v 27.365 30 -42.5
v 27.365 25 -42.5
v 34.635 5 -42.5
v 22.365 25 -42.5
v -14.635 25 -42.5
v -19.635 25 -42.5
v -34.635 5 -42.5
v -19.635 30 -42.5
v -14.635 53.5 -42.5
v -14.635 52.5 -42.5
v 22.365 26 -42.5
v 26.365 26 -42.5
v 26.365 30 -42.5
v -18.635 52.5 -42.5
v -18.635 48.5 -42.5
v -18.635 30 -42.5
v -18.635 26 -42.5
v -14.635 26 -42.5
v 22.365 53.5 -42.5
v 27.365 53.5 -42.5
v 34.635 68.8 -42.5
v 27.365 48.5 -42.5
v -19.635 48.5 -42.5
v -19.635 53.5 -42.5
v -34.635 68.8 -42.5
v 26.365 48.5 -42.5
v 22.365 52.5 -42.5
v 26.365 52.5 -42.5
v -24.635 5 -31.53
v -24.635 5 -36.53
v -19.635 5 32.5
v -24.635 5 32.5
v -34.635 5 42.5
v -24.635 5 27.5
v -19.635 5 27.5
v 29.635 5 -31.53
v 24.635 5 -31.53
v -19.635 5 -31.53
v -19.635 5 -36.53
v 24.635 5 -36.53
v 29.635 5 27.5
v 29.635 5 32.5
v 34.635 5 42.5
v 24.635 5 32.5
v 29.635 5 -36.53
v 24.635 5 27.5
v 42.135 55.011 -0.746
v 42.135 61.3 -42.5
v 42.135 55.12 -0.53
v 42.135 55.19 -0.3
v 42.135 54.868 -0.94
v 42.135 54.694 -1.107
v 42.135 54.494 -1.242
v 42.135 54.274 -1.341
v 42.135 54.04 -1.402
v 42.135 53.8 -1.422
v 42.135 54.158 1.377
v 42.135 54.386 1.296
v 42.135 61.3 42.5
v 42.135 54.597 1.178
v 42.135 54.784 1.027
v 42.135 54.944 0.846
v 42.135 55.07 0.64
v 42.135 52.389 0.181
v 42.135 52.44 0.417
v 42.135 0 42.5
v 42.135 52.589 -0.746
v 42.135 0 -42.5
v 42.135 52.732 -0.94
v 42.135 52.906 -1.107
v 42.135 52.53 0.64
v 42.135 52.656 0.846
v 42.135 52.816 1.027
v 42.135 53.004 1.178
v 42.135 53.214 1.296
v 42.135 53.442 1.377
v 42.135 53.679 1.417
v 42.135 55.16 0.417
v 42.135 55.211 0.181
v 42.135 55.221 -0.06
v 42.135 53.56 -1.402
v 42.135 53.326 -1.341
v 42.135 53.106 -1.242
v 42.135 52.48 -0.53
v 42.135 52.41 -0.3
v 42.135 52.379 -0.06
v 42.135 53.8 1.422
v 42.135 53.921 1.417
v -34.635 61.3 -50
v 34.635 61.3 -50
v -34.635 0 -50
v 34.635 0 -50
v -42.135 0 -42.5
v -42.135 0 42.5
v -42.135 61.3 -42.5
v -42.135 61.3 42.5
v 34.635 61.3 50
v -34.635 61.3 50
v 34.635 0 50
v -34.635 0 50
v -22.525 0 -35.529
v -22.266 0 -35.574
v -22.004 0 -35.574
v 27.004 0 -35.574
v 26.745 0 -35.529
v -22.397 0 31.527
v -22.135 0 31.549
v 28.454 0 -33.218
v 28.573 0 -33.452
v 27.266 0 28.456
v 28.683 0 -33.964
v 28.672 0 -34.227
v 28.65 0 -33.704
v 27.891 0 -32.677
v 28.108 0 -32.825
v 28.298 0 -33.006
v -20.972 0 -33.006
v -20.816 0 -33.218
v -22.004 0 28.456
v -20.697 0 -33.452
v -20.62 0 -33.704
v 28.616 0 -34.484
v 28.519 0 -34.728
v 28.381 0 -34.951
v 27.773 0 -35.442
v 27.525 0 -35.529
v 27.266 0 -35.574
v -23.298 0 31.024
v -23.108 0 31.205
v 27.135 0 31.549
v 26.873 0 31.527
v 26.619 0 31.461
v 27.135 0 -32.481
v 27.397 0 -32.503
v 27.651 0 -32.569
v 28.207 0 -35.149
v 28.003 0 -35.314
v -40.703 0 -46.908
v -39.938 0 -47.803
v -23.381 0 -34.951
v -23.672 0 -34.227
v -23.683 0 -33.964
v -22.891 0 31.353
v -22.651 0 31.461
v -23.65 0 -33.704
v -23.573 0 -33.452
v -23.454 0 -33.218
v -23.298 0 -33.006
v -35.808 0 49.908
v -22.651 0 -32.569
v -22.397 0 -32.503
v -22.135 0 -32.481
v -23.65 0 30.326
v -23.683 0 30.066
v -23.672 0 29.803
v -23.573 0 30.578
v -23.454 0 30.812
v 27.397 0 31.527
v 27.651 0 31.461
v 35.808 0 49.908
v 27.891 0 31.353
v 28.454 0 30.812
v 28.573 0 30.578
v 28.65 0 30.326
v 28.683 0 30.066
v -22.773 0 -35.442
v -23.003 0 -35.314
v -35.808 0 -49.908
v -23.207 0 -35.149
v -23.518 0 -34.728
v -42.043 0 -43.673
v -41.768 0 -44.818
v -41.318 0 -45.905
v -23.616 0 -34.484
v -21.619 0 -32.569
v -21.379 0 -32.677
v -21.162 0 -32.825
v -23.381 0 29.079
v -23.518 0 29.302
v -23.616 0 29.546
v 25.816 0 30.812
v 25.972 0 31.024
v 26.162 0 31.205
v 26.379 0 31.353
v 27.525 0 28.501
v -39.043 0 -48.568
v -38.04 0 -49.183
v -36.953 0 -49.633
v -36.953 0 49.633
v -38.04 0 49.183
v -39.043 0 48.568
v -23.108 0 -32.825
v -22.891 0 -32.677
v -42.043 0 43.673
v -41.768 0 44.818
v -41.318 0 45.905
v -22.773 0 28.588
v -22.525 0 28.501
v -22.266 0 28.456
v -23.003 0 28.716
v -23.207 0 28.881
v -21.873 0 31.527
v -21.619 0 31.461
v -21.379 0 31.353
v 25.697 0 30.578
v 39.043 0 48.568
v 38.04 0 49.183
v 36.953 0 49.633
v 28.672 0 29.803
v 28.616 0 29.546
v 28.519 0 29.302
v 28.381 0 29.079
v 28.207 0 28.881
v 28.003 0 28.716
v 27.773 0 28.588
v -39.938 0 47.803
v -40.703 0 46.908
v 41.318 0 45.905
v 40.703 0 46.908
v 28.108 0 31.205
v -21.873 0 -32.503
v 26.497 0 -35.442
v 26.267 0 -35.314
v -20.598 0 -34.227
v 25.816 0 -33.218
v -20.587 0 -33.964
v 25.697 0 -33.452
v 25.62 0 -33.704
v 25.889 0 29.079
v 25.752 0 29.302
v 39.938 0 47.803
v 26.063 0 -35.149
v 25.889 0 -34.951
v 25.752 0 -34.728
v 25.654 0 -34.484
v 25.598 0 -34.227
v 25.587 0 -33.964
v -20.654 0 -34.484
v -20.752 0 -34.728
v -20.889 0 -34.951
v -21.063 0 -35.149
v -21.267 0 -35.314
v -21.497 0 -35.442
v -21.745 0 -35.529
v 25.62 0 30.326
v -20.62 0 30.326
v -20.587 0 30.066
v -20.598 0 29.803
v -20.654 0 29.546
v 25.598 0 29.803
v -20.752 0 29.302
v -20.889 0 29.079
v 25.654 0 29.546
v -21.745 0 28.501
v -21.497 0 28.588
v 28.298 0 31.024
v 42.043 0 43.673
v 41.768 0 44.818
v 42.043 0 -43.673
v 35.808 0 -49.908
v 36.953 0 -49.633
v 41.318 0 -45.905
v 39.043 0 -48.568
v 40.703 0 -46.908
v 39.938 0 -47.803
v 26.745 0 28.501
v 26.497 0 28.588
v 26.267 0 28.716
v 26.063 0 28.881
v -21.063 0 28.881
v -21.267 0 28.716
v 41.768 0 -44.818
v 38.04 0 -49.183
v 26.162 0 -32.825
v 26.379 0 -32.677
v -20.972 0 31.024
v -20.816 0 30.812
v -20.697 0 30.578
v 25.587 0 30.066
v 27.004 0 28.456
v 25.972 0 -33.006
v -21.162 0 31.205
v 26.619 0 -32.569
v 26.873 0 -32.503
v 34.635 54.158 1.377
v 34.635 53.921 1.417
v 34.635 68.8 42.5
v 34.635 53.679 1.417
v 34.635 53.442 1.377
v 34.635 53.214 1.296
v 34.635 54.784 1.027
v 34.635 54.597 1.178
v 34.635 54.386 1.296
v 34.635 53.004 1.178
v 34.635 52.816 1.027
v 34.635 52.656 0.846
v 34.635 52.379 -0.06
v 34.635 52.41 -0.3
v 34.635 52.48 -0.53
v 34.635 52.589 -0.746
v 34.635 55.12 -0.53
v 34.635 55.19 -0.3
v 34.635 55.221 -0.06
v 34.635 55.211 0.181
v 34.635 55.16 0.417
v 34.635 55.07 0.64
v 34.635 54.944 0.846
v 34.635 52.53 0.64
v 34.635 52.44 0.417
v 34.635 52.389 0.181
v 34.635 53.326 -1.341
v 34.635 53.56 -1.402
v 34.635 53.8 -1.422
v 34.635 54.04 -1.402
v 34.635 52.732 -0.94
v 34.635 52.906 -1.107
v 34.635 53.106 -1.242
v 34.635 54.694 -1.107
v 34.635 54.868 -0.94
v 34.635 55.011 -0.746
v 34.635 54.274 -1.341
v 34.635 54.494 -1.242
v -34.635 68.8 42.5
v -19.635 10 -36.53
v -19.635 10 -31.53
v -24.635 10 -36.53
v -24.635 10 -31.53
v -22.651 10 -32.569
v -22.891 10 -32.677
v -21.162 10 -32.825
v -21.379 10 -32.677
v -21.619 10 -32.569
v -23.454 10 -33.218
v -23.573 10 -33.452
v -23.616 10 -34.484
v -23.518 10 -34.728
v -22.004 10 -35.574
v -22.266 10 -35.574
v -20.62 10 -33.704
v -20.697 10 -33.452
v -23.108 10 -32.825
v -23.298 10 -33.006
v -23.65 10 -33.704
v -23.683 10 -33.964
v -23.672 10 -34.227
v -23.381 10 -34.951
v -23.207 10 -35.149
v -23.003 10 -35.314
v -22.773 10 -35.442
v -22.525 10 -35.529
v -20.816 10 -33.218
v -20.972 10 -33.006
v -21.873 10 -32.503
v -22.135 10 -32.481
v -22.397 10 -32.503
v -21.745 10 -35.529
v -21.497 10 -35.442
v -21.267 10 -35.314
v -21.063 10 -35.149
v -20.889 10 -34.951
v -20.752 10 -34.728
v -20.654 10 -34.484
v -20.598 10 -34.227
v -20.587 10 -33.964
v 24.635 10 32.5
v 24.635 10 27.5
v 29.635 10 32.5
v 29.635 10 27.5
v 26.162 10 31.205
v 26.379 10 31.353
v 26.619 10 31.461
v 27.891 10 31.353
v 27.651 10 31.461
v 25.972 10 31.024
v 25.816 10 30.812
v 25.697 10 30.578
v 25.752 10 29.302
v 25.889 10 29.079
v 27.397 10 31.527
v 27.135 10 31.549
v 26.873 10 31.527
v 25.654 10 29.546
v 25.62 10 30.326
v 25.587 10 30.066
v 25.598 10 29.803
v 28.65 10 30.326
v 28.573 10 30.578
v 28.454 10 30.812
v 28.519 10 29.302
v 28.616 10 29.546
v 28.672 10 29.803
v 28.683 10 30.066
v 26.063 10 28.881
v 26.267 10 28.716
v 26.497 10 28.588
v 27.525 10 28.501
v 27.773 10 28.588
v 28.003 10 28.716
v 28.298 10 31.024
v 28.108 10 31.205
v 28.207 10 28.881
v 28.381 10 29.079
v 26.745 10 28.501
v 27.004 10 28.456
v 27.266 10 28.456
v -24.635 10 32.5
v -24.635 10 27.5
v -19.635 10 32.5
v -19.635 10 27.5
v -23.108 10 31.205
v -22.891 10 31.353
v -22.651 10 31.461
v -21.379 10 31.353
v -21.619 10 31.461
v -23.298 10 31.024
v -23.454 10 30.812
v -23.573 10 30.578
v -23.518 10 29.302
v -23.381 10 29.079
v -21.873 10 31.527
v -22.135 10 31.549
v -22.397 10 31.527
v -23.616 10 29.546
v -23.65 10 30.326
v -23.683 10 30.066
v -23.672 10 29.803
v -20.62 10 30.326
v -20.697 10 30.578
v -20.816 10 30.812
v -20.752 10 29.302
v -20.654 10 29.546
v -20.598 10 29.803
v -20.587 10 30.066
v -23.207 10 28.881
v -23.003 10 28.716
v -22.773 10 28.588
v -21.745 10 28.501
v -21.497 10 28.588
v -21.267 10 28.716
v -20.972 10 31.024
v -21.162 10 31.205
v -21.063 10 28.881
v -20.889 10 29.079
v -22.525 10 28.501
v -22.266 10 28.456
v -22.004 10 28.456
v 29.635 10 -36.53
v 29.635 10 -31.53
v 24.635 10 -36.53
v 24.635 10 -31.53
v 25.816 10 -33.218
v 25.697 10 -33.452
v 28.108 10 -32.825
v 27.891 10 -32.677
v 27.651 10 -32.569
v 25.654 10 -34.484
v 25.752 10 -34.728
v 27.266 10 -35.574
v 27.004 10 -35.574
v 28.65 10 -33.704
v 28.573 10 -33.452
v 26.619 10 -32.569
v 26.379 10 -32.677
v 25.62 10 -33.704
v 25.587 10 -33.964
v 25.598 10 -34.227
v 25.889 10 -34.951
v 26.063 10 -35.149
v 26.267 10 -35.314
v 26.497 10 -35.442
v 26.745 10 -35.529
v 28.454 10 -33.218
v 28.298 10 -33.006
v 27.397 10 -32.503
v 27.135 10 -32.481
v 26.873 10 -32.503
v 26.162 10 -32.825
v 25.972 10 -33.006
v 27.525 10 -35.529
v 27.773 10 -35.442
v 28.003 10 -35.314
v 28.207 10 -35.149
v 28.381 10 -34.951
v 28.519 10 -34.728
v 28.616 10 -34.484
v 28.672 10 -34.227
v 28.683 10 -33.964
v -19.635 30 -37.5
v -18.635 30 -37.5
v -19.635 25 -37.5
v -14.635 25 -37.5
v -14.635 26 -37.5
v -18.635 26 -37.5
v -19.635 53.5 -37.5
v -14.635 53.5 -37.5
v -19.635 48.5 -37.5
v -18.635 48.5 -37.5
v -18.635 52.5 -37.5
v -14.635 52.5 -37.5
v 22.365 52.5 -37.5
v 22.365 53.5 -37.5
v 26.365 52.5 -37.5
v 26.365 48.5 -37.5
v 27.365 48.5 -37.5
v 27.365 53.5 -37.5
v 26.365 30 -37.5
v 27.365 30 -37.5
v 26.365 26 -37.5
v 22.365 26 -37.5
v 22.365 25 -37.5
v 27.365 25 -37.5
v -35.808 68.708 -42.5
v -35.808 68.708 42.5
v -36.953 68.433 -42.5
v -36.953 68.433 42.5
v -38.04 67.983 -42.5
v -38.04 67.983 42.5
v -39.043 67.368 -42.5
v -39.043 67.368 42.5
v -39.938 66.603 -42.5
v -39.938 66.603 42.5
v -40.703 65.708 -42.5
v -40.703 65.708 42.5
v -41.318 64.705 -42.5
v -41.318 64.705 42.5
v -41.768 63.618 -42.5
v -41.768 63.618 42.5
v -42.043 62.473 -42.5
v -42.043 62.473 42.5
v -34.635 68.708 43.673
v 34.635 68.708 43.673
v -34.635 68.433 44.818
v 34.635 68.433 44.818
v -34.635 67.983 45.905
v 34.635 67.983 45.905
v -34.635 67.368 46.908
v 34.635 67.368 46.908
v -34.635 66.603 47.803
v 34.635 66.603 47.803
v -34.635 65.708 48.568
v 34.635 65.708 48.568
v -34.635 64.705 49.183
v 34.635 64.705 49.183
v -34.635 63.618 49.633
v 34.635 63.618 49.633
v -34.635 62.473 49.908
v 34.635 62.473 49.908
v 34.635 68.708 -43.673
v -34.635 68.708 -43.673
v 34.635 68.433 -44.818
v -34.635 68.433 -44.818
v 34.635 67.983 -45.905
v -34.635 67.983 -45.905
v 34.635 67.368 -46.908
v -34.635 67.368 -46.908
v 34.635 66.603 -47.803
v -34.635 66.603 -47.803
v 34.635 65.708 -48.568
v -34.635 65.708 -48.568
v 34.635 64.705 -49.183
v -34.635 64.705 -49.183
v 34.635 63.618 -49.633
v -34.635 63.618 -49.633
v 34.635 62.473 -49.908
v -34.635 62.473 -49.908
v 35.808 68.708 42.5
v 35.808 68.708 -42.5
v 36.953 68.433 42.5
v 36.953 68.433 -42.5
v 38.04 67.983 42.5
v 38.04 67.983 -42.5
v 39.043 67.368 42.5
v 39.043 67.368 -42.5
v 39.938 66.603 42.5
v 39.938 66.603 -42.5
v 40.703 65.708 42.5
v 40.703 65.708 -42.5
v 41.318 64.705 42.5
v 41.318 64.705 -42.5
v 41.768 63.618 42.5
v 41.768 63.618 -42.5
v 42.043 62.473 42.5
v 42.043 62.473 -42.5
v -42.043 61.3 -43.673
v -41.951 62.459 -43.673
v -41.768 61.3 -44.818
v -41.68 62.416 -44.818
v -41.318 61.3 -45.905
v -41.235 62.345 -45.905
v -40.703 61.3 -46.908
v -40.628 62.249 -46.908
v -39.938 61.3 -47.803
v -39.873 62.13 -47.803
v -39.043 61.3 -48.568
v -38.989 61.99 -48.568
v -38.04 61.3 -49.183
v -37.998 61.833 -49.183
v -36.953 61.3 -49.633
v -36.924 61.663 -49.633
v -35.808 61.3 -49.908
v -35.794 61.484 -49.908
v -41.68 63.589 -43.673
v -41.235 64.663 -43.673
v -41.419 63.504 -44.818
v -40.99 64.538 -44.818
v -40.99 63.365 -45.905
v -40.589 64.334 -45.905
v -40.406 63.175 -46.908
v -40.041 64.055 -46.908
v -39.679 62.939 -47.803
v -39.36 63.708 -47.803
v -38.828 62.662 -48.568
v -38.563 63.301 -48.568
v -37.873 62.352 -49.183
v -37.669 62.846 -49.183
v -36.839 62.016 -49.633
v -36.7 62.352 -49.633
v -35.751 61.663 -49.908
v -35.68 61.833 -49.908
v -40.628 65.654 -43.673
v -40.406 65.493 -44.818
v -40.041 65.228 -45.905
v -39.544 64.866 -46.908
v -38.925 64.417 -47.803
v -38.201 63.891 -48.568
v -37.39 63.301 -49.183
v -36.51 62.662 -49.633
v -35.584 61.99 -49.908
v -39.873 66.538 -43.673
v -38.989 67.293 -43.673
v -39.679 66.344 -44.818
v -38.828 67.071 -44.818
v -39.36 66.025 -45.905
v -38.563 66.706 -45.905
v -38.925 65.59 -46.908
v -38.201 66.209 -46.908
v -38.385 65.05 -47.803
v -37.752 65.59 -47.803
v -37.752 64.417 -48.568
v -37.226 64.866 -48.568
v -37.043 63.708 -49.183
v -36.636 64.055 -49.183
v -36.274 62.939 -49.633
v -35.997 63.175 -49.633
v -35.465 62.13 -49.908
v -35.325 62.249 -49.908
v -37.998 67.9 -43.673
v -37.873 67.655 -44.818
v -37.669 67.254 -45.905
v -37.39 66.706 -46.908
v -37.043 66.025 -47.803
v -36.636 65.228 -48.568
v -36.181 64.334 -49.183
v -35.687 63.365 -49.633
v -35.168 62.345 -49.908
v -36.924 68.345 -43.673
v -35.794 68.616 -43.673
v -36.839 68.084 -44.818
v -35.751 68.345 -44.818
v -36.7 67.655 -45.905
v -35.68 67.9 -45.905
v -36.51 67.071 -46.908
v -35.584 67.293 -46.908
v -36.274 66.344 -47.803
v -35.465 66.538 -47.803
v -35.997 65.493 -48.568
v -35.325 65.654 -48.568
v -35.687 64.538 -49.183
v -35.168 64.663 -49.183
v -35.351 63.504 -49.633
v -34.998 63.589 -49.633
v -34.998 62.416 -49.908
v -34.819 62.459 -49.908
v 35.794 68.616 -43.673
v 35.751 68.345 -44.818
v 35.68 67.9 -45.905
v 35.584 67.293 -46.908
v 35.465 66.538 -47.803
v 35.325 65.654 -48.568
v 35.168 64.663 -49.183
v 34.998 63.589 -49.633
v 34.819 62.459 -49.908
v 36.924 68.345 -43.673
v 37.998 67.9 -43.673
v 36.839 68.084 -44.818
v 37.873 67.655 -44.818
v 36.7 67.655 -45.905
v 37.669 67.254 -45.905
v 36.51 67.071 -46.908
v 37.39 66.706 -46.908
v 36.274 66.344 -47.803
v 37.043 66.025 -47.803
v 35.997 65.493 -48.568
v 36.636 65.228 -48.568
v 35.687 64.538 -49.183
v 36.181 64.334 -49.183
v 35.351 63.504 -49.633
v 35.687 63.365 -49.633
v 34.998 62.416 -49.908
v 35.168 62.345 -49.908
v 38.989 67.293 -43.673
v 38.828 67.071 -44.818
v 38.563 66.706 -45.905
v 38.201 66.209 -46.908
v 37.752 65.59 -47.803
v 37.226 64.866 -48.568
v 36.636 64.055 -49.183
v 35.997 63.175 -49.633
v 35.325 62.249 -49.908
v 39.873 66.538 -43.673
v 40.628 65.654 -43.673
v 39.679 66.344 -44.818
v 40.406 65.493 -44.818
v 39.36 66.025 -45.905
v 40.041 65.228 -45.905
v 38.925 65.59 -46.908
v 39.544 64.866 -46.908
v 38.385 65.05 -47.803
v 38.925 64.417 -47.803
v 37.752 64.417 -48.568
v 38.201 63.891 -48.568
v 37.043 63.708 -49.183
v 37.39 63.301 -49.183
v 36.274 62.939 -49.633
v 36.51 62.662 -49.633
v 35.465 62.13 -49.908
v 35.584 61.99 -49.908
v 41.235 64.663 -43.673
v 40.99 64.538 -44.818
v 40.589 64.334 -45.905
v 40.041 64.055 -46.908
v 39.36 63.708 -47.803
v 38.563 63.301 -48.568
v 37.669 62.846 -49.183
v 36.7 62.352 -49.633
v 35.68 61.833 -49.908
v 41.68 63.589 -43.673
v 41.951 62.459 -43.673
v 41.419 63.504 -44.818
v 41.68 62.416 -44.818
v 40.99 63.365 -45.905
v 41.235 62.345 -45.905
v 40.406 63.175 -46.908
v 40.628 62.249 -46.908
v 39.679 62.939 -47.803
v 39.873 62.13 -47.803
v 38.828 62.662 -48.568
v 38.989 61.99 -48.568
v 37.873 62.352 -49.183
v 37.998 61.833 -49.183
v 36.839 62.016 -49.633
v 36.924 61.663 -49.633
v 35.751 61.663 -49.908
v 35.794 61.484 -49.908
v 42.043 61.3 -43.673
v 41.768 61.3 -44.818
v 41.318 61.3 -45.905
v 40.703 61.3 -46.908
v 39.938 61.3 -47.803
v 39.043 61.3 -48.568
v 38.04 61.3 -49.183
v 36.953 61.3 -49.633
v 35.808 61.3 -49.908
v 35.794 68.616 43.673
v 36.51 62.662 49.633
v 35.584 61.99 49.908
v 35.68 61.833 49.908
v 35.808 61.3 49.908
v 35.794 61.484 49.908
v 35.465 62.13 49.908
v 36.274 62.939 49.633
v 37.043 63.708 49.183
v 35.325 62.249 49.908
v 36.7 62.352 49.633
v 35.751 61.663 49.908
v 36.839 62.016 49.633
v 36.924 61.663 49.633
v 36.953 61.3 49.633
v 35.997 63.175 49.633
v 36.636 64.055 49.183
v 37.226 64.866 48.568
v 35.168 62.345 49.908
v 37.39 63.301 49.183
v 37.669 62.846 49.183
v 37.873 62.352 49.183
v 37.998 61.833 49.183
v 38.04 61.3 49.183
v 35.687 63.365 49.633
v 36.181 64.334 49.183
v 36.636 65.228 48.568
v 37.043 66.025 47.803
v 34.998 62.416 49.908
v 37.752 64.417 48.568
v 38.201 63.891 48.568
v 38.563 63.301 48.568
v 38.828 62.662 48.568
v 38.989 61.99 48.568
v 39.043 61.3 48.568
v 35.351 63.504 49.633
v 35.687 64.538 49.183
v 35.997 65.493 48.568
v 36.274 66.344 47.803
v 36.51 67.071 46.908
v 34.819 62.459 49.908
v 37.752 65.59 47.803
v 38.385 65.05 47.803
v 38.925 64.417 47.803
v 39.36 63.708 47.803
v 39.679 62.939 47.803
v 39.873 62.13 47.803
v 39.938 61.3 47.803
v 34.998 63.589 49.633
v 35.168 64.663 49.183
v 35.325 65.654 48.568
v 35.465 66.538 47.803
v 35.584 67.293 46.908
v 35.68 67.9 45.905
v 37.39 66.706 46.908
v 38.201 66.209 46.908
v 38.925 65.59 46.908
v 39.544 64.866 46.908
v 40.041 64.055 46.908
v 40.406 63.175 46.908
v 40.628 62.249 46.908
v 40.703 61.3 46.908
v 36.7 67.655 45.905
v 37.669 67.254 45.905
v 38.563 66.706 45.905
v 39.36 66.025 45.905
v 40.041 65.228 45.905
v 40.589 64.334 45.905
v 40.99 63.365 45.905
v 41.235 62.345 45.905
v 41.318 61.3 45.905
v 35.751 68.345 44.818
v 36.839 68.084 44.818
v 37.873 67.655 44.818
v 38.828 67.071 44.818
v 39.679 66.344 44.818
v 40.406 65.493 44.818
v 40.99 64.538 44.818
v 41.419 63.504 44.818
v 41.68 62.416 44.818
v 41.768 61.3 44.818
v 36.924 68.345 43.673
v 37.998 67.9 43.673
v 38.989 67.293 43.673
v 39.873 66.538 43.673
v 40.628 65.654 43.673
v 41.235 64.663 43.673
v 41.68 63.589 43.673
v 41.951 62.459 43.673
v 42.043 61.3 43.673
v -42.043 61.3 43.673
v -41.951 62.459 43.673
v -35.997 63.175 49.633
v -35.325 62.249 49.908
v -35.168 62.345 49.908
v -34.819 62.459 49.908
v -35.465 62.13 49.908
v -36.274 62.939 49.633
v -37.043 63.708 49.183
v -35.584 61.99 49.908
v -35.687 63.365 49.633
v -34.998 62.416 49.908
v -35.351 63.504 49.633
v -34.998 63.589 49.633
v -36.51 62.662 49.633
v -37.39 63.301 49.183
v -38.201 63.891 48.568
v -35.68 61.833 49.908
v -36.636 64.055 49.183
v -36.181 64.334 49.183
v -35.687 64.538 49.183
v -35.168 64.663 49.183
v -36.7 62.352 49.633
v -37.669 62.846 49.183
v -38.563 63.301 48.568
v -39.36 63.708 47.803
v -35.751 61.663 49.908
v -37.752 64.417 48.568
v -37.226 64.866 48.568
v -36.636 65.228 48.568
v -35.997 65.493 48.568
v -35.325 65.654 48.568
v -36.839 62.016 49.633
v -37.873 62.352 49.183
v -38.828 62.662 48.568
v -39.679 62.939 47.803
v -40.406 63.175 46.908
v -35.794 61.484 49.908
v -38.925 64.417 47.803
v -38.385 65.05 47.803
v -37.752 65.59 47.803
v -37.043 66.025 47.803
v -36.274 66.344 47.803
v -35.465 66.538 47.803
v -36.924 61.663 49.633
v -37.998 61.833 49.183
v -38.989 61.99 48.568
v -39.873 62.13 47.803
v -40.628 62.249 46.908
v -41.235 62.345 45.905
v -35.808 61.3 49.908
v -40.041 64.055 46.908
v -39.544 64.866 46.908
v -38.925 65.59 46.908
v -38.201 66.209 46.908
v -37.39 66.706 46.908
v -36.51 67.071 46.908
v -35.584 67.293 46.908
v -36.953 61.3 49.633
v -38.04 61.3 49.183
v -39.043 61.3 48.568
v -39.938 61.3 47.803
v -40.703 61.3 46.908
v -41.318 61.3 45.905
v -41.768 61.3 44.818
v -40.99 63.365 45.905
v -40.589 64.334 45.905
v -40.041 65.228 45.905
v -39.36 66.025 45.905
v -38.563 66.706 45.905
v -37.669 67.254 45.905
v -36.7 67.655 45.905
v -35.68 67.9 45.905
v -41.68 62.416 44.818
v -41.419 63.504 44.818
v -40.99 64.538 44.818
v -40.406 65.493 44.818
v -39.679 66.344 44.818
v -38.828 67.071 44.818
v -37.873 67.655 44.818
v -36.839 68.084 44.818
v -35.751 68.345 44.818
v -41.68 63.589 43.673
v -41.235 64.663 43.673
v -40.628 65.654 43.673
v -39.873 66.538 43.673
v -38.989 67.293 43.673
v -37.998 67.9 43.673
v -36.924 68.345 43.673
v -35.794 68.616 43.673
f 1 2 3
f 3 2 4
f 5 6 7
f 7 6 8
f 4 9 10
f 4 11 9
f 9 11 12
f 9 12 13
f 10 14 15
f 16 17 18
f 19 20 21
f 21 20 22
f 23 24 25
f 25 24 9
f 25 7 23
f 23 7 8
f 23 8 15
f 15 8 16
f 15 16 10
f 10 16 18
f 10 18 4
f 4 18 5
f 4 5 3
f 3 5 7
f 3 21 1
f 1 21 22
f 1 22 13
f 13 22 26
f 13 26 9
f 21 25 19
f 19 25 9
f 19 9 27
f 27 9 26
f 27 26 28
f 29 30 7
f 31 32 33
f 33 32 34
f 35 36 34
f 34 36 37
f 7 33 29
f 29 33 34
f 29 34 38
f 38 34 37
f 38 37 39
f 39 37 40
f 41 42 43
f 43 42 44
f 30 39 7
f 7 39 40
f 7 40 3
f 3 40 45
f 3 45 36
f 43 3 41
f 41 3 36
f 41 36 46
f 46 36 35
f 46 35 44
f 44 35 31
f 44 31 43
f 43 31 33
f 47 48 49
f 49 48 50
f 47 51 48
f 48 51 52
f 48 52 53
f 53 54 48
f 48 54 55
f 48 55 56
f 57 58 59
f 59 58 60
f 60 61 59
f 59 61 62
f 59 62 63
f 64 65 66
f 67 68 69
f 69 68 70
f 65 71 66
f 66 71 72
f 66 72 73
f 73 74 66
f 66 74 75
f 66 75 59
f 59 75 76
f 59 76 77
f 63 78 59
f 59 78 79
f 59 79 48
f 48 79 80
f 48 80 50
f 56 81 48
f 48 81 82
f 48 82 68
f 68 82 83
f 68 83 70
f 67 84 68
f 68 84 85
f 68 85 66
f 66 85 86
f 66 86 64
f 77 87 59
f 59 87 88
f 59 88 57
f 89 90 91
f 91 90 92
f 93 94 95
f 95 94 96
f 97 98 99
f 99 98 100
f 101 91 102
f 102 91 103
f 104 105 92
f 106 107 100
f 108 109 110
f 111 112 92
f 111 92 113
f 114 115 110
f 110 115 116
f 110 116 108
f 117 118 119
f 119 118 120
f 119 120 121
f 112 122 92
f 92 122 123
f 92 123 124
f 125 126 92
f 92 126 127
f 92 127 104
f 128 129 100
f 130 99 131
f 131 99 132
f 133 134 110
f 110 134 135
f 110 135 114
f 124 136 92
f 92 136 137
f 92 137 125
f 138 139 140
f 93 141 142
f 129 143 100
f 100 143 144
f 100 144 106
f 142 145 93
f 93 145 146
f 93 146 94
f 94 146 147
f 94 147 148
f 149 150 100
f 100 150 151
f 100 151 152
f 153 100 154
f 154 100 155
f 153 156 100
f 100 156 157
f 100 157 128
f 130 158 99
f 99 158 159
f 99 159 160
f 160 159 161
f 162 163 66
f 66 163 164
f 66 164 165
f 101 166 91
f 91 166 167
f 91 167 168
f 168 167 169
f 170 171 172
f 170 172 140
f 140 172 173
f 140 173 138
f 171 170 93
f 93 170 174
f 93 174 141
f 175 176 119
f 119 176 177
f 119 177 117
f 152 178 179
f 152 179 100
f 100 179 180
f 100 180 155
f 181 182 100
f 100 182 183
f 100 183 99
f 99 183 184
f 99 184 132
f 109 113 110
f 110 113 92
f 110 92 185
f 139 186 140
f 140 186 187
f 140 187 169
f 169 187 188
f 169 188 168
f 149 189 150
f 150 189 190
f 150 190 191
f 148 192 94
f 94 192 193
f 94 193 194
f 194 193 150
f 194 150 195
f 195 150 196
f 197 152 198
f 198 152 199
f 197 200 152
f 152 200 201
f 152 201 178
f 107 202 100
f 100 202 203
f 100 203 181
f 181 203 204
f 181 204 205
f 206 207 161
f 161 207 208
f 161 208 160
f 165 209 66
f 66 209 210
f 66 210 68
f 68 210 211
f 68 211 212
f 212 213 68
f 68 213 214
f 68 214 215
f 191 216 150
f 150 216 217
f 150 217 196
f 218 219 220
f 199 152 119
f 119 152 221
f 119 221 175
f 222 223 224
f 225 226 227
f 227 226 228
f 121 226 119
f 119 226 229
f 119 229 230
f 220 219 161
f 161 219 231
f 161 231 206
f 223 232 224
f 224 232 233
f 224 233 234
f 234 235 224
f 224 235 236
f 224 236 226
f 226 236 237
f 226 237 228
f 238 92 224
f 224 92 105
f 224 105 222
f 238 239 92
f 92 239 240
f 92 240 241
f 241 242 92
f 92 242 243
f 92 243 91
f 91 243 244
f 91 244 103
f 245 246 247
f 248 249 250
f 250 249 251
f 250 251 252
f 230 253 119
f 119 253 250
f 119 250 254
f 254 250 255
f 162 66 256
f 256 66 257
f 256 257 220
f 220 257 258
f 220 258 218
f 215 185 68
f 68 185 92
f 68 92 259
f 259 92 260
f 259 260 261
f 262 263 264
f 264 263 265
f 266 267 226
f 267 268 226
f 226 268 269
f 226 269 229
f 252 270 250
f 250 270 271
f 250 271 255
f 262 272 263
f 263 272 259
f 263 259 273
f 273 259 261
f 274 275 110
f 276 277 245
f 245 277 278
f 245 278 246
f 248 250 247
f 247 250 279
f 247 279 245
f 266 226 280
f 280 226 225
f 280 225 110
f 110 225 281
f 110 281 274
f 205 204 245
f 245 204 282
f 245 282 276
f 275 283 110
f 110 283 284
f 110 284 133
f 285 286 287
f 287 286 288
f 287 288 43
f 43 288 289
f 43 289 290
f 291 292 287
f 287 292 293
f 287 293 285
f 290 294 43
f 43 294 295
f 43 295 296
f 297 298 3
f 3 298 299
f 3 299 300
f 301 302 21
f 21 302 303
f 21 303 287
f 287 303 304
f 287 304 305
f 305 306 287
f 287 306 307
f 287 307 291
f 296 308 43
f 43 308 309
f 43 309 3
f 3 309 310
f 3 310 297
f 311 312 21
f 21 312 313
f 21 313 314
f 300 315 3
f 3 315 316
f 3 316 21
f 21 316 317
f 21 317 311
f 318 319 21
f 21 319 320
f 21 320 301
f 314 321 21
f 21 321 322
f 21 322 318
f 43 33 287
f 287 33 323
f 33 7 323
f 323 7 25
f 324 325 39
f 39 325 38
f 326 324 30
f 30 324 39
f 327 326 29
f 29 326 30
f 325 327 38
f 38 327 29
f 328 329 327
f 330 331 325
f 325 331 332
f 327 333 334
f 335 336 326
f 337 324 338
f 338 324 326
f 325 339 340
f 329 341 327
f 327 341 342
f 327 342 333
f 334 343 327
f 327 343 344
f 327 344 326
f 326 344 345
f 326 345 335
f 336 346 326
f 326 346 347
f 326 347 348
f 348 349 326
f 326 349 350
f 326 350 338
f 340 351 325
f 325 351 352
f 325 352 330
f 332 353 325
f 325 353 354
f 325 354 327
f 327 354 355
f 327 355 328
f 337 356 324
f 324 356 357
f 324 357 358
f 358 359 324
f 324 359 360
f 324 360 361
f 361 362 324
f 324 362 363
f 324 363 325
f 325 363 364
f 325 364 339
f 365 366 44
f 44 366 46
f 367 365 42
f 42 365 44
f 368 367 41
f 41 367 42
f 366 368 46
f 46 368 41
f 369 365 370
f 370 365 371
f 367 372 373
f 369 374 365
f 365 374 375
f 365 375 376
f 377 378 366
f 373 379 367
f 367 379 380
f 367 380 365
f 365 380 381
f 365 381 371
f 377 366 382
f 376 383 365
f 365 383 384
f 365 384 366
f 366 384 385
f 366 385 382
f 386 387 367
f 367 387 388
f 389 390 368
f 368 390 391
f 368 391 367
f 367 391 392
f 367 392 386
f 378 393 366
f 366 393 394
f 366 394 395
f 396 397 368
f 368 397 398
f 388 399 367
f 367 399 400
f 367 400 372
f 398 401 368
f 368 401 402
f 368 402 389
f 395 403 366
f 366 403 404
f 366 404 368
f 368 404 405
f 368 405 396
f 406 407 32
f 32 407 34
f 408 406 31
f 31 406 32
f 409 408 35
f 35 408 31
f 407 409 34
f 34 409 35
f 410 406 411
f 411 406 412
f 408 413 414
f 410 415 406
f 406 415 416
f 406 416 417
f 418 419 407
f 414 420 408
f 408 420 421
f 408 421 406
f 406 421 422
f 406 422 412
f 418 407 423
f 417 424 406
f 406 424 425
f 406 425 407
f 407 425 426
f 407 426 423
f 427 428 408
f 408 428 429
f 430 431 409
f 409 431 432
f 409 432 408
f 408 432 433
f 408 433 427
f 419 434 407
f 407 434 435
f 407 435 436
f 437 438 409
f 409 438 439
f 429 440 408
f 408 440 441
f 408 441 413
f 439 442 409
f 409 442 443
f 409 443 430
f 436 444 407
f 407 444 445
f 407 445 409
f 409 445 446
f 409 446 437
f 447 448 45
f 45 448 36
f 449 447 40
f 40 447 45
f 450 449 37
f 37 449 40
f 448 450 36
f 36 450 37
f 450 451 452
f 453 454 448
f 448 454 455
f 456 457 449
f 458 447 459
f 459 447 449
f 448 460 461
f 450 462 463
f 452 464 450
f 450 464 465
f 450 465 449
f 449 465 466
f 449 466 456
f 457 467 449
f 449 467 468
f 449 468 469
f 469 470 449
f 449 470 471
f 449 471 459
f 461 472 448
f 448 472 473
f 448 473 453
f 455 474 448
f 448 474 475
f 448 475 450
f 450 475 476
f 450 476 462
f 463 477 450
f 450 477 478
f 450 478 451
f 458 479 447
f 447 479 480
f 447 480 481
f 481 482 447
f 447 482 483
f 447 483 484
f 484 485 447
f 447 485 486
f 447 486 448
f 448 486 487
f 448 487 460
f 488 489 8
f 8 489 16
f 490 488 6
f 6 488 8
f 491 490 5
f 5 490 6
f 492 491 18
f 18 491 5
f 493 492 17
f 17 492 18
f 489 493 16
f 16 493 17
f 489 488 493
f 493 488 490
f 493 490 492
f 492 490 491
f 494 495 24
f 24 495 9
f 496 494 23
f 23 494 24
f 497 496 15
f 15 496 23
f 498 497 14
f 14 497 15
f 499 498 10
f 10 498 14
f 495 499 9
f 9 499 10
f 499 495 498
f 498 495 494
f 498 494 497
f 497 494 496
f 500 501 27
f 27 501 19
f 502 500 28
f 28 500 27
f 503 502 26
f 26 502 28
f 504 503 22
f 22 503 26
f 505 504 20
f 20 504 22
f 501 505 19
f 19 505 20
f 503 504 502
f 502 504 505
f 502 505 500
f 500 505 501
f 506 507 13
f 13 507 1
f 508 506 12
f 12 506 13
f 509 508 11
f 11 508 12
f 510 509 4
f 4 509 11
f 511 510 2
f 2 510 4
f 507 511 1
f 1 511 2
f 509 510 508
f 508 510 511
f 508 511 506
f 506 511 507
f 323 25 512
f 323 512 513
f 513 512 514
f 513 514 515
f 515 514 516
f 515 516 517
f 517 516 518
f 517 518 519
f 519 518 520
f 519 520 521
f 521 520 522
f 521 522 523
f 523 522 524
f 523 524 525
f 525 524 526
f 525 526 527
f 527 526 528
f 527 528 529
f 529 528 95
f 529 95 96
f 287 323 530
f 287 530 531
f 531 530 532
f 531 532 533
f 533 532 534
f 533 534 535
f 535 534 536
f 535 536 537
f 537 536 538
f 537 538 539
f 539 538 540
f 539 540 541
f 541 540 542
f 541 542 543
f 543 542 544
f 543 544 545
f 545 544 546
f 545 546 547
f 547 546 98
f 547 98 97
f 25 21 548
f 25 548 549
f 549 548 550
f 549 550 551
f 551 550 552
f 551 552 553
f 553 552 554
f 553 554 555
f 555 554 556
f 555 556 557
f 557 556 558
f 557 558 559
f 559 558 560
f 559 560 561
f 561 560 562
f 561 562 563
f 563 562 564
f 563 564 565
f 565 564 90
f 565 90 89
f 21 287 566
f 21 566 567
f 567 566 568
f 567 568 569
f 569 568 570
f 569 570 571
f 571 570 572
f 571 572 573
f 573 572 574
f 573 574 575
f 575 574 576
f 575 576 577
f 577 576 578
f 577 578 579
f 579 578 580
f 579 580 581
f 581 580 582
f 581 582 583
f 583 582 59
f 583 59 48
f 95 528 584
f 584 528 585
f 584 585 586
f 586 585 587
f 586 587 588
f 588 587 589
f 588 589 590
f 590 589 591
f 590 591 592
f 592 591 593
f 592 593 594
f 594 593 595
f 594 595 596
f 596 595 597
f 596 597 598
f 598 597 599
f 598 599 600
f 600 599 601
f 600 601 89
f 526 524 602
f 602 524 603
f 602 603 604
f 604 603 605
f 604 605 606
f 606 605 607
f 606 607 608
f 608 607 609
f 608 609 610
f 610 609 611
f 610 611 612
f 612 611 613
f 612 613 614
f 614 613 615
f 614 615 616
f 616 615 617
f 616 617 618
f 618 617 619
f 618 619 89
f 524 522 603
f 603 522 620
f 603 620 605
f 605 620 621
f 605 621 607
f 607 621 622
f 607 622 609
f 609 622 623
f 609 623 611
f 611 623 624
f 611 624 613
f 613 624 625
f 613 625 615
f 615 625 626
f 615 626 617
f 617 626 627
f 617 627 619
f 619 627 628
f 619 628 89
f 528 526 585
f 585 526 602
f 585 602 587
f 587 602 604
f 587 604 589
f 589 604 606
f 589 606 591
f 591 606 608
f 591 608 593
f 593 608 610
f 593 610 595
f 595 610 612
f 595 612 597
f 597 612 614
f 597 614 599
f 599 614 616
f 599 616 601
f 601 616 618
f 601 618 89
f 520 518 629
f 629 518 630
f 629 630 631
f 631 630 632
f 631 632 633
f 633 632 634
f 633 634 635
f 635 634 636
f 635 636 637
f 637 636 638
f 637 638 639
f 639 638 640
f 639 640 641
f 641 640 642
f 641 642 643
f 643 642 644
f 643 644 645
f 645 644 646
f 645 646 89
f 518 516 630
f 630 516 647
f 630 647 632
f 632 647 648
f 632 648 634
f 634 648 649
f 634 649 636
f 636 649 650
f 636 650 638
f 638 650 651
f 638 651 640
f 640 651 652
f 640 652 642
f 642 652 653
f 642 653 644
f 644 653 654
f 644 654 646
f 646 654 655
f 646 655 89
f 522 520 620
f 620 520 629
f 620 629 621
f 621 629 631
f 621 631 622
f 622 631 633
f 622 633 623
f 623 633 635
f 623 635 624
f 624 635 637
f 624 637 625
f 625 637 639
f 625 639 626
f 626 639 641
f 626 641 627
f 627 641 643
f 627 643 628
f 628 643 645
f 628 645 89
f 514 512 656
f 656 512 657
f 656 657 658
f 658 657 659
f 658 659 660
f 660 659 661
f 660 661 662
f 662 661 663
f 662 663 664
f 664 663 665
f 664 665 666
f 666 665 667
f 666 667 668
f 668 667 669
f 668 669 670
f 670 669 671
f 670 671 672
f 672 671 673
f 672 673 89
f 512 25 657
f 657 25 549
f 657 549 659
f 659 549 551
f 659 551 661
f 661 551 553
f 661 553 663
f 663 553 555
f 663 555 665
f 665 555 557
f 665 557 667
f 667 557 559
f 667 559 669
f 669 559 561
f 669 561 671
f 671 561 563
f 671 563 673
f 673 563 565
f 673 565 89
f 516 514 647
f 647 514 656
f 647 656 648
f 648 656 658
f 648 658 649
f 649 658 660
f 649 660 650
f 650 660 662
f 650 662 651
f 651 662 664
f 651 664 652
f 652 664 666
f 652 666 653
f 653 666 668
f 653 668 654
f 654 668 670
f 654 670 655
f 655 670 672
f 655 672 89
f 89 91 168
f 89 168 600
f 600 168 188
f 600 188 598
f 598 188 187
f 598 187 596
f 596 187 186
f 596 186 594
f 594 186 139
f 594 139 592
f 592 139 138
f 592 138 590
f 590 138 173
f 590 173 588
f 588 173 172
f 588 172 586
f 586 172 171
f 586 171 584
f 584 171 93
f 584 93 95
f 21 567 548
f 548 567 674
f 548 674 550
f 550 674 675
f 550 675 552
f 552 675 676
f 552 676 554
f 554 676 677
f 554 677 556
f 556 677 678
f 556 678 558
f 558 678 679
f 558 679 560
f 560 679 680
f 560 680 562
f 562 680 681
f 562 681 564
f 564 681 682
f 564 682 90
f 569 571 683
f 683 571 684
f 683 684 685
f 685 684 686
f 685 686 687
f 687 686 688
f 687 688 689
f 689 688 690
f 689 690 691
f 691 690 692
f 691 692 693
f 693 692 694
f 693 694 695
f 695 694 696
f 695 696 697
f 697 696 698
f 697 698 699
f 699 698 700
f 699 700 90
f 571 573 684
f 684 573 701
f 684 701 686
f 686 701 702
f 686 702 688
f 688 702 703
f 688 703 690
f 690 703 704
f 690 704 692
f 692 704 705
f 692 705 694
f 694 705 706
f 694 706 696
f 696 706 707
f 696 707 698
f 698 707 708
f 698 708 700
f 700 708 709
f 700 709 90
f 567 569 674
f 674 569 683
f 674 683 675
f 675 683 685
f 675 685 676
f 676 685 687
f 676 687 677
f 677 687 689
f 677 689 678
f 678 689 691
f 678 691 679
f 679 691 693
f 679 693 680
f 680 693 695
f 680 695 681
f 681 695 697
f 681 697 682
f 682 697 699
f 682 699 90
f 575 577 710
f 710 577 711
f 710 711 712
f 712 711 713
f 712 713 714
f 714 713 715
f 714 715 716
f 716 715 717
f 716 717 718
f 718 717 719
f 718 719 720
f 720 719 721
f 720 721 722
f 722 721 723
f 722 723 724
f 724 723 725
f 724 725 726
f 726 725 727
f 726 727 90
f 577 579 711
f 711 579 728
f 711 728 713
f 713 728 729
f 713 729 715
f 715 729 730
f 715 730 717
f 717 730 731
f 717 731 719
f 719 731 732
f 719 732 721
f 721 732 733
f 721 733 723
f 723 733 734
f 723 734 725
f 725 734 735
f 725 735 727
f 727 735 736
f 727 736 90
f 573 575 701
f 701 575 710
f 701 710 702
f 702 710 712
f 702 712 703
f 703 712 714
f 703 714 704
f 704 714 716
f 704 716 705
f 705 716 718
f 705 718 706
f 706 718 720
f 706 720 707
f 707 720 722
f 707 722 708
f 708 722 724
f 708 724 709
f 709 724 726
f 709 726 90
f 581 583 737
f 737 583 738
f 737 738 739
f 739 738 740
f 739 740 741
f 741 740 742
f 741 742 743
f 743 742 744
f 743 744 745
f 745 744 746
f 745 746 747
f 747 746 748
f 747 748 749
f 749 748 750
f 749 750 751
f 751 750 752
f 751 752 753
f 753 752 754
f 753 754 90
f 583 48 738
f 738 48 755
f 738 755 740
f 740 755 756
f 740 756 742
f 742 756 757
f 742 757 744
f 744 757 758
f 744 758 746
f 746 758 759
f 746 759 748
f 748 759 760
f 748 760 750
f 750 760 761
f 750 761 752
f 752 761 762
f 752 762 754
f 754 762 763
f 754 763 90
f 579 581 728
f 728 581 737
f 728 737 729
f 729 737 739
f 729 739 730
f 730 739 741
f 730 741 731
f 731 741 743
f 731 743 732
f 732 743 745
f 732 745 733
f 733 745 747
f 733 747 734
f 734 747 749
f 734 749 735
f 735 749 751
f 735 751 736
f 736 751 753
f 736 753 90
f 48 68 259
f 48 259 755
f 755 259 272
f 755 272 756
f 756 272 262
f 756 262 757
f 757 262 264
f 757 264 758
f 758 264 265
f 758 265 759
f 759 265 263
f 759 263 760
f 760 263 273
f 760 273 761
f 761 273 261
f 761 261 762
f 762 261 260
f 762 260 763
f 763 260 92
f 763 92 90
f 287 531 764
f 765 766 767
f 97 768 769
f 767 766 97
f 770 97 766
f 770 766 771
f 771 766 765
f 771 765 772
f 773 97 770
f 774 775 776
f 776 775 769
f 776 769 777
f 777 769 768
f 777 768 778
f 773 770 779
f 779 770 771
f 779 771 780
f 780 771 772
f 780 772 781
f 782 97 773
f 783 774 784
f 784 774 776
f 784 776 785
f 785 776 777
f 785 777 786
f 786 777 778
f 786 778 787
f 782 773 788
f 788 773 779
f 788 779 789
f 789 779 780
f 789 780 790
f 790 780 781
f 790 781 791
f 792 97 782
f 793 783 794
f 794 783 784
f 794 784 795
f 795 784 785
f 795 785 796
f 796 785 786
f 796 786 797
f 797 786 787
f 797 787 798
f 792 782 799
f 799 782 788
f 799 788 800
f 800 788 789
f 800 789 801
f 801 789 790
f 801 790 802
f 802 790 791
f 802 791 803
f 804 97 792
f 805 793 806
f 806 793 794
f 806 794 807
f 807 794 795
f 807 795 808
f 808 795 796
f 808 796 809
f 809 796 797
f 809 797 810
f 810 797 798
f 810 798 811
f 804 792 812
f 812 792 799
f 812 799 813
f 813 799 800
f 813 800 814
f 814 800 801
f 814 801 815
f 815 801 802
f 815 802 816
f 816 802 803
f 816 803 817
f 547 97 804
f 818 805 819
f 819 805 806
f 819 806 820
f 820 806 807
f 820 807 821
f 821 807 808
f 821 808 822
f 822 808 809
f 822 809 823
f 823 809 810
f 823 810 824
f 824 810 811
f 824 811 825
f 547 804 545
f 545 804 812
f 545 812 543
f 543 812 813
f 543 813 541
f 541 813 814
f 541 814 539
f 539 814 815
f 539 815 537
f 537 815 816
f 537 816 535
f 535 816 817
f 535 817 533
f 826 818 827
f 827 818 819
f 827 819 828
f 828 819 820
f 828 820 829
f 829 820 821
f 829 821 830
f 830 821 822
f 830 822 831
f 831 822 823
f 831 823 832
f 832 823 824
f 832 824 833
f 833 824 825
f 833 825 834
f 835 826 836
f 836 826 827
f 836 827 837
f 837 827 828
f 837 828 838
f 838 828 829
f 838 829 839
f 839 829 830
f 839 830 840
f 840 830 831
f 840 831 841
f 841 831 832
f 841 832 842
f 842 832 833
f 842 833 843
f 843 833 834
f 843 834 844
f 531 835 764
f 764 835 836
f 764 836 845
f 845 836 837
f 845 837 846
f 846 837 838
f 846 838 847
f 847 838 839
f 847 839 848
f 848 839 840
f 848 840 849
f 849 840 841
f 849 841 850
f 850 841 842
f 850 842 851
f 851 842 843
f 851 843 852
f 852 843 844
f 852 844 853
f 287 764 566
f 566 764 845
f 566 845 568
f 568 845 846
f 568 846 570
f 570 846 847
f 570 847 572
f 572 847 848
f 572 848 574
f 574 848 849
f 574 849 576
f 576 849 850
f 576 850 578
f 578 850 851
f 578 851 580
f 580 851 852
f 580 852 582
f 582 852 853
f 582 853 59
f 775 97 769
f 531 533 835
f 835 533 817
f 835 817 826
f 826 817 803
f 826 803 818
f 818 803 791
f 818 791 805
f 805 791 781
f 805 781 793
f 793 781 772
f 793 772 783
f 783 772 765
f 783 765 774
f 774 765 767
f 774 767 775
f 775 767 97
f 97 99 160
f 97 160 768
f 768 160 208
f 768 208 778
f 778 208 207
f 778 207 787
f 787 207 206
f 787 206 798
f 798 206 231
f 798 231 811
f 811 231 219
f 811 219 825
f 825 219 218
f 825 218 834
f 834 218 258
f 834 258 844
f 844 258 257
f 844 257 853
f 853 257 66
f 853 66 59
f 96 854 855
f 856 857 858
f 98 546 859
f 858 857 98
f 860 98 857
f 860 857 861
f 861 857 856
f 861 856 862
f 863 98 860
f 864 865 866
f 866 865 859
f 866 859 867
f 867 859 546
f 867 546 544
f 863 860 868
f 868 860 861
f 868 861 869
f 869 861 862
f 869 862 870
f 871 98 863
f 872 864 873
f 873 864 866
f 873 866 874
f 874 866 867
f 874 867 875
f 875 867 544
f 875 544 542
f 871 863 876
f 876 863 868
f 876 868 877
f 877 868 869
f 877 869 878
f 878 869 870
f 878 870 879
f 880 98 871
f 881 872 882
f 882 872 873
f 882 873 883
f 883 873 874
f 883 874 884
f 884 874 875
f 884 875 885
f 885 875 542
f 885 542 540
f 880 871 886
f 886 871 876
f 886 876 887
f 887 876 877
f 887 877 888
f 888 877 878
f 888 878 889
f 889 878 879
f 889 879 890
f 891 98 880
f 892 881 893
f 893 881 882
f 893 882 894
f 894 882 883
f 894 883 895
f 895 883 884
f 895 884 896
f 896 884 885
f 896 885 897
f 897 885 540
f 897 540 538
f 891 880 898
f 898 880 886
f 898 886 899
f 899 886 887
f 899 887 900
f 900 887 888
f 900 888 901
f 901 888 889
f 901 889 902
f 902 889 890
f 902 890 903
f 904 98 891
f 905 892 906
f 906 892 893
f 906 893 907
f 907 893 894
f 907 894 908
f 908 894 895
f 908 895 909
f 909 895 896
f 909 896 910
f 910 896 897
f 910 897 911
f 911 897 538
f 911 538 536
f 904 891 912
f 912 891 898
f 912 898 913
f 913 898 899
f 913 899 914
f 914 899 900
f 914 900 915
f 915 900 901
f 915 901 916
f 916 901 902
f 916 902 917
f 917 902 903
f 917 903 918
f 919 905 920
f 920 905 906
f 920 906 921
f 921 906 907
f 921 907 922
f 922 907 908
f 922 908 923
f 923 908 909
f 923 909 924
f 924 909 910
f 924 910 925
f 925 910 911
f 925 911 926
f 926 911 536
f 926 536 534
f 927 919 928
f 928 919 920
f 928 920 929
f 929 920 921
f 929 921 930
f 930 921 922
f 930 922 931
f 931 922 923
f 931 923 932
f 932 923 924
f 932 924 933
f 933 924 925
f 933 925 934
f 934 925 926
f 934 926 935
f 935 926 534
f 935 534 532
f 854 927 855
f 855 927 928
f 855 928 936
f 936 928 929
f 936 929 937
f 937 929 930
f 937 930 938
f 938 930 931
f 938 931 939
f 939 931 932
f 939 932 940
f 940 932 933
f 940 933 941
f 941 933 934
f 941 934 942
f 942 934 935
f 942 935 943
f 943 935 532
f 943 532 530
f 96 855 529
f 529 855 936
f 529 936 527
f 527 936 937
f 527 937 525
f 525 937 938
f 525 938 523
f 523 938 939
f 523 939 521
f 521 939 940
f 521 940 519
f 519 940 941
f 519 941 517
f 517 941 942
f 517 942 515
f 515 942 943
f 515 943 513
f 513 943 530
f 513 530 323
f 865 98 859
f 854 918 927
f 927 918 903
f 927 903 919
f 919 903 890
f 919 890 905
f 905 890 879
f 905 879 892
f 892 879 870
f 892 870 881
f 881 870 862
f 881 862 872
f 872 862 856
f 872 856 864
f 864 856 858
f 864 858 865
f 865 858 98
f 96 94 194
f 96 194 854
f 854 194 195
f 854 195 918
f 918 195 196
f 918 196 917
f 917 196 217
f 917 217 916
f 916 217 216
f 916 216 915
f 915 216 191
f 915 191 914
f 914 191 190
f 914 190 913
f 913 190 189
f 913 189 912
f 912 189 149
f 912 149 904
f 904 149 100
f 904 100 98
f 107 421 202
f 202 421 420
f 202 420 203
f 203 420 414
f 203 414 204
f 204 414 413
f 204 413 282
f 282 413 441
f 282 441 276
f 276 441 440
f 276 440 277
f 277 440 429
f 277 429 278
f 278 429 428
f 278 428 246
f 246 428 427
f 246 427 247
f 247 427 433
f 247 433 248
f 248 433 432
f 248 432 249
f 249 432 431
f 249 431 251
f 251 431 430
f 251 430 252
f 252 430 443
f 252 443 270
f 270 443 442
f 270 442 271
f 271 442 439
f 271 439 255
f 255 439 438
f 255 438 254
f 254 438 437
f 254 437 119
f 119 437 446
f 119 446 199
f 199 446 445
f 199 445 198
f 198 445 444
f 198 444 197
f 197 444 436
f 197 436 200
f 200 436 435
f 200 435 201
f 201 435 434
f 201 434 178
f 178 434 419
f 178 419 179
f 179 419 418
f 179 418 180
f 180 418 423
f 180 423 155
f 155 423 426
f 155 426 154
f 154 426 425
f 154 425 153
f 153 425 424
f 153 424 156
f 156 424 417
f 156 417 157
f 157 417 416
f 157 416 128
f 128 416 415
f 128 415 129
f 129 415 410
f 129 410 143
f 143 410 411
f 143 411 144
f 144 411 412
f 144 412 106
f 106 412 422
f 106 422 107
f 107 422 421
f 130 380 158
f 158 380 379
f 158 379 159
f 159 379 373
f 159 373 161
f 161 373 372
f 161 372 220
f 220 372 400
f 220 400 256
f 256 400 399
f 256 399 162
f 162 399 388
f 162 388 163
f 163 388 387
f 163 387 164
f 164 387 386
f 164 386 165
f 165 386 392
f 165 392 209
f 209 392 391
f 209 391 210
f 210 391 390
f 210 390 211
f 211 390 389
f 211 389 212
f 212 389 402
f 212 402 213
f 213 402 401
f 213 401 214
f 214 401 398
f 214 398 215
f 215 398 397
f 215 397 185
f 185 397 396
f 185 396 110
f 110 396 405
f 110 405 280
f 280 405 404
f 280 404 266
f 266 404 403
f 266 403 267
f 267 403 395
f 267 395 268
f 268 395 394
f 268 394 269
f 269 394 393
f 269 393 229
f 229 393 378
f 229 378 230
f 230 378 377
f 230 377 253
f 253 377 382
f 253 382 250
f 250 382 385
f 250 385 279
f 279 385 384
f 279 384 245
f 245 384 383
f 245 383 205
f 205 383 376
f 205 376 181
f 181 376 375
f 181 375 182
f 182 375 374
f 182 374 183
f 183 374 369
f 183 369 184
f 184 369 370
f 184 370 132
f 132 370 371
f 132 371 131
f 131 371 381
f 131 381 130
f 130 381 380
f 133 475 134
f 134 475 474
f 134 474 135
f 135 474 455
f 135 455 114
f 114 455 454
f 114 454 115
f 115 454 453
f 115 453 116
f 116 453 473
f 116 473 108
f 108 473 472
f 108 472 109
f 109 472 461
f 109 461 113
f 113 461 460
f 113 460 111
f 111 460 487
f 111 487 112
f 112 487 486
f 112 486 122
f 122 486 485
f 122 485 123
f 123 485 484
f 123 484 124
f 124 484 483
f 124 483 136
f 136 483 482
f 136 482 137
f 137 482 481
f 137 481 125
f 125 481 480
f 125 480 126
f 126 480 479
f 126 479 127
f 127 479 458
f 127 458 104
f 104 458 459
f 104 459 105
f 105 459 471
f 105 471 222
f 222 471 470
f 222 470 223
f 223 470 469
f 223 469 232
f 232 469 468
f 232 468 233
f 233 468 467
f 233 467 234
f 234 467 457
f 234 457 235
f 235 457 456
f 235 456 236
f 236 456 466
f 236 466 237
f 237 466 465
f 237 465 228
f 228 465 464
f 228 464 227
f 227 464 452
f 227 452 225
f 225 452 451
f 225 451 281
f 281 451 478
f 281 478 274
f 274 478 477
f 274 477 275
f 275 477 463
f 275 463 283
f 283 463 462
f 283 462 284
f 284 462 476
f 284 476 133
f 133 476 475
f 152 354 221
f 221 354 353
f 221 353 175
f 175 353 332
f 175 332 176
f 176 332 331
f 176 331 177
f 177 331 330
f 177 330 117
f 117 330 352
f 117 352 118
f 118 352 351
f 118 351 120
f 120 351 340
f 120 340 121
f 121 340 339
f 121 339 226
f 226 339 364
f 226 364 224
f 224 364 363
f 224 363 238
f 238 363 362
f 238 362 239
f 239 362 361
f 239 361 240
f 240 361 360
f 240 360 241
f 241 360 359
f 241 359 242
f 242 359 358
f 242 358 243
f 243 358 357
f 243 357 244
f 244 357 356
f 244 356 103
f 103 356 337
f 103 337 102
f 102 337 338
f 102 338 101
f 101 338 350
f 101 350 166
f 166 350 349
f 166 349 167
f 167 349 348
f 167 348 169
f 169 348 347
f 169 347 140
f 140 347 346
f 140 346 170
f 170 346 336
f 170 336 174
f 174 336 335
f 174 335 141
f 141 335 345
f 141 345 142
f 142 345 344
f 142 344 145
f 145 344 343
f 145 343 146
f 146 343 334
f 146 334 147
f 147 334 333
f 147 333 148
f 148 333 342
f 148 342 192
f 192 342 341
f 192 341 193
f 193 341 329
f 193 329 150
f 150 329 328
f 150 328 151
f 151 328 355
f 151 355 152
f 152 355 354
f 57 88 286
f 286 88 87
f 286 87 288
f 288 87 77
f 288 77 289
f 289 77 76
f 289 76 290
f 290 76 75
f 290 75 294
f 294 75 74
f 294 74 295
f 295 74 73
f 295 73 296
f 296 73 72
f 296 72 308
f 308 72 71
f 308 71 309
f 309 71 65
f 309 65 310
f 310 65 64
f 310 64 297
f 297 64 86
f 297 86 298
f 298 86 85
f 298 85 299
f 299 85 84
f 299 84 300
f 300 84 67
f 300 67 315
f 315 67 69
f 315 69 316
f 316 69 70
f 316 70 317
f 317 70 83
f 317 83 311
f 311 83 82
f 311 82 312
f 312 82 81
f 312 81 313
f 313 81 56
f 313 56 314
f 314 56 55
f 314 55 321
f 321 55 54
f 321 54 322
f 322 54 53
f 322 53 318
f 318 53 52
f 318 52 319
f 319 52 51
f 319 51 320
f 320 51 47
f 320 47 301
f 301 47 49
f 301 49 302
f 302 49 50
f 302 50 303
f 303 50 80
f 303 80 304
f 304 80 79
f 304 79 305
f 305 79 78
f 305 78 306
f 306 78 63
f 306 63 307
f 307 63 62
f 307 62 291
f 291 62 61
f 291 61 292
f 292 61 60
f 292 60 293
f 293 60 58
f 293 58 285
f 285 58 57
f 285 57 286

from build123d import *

# Parameters (mm, degrees)
SKETCH1_W               = 84.27
SKETCH1_H               = 100
BOSS_EXTRUDE1_DEPTH     = 68.8
SKETCH2_W               = 69.27
SKETCH2_H               = 85
CUT_EXTRUDE1_DEPTH      = 63.8
SKETCH6_W               = 5
SKETCH6_H               = 5
BOSS_EXTRUDE2_DEPTH     = 5
BOSS_EXTRUDE3_DEPTH     = 5
FILLET1_R               = 7.5
FILLET8_R               = 7.5
ADVANCEDHOLE2_OUTLINE_R = 1.5494
ADVANCEDHOLE2_DEPTH     = 10
HOLE1_START             = 34.635
HOLE1_OUTLINE_R         = 1.4224
HOLE1_DEPTH             = 7.5


# Read off the part's stored shape, not the designer's step: AdvancedHole2, Hole1
# Some blends are built 0.0001 mm under size
with BuildPart() as part:
    # Sketch1 → Boss-Extrude1 (new body)
    with BuildSketch(Plane(origin=(0, 0, 0), x_dir=(1, 0, 0), z_dir=(0, 1, 0))):
        Rectangle(SKETCH1_W, SKETCH1_H)
    extrude(amount=BOSS_EXTRUDE1_DEPTH)

    # Sketch2 → Cut-Extrude1 (cut)
    with BuildSketch(Plane(origin=(0, 68.8, 0), x_dir=(1, 0, 0), z_dir=(0, 1, 0))):
        Rectangle(SKETCH2_W, SKETCH2_H)
    extrude(amount=-CUT_EXTRUDE1_DEPTH, mode=Mode.SUBTRACT)

    # Sketch6 → Boss-Extrude2 (add)
    with BuildSketch(Plane(origin=(0, 5, 0), x_dir=(1, 0, 0), z_dir=(0, 1, 0))):
        with Locations((-22.135, 34.03)):
            Rectangle(SKETCH6_W, SKETCH6_H)
        with Locations((-22.135, -30)):
            Rectangle(SKETCH6_W, SKETCH6_H)
        with Locations((27.135, 34.03)):
            Rectangle(SKETCH6_W, SKETCH6_H)
        with Locations((27.135, -30)):
            Rectangle(SKETCH6_W, SKETCH6_H)
    extrude(amount=BOSS_EXTRUDE2_DEPTH)

    # Sketch7 → Boss-Extrude3 (add)
    with BuildSketch(Plane.XY.offset(-42.5)):
        Polygon((-19.635, 30), (-19.635, 25), (-14.635, 25), (-14.635, 26), (-18.635, 26), (-18.635, 30), align=None)
        Polygon((-19.635, 53.5), (-19.635, 48.5), (-18.635, 48.5), (-18.635, 52.5), (-14.635, 52.5), (-14.635, 53.5), align=None)
        Polygon((22.365, 53.5), (27.365, 53.5), (27.365, 48.5), (26.365, 48.5), (26.365, 52.5), (22.365, 52.5), align=None)
        Polygon((27.365, 30), (27.365, 25), (22.365, 25), (22.365, 26), (26.365, 26), (26.365, 30), align=None)
    extrude(amount=BOSS_EXTRUDE3_DEPTH)

    # Fillet1
    fillet1_edges = [part.edges().sort_by_distance(p)[0] for p in [
        (-42.135, 68.8, 0),
        (0, 68.8, 50),
        (42.135, 68.8, 0),
        (0, 68.8, -50),
    ]]
    fillet(fillet1_edges, radius=FILLET1_R - 0.0001)  # a hair under: the kernel refuses the full size

    # Fillet8
    # the kernel refuses this fillet: 7.5 mm, written as the material it takes off along each edge
    with BuildSketch(Plane(origin=(-34.635, 68.8, 42.5), x_dir=(-1, 0, 0), z_dir=(0, 0, -1))) as fillet8_piece_1:
        with BuildLine():
            CenterArc((0.0001, -7.4999), 7.4999, 0, 90)
            Line((7.5, -7.4999), (7.5, 0))
            Line((7.5, 0), (0.0001, 0))
        make_face()
    revolve(axis=Axis((-34.635, 68.8, 42.5), (0, 1, 0)), revolution_arc=90, mode=Mode.SUBTRACT)
    with BuildSketch(Plane(origin=(-34.635, 68.8, -42.5), x_dir=(0, 0, -1), z_dir=(1, 0, 0))) as fillet8_piece_2:
        with BuildLine():
            CenterArc((0.0001, -7.4999), 7.4999, 0, 90)
            Line((7.5, -7.4999), (7.5, 0))
            Line((7.5, 0), (0.0001, 0))
        make_face()
    revolve(axis=Axis((-34.635, 68.8, -42.5), (0, 1, 0)), revolution_arc=90, mode=Mode.SUBTRACT)
    with BuildSketch(Plane(origin=(34.635, 68.8, 42.5), x_dir=(0, 0, 1), z_dir=(-1, 0, 0))) as fillet8_piece_3:
        with BuildLine():
            CenterArc((0.0001, -7.4999), 7.4999, 0, 90)
            Line((7.5, -7.4999), (7.5, 0))
            Line((7.5, 0), (0.0001, 0))
        make_face()
    revolve(axis=Axis((34.635, 68.8, 42.5), (0, 1, 0)), revolution_arc=90, mode=Mode.SUBTRACT)
    with BuildSketch(Plane(origin=(34.635, 68.8, -42.5), x_dir=(1, 0, 0), z_dir=(0, 0, 1))) as fillet8_piece_4:
        with BuildLine():
            CenterArc((0.0001, -7.4999), 7.4999, 0, 90)
            Line((7.5, -7.4999), (7.5, 0))
            Line((7.5, 0), (0.0001, 0))
        make_face()
    revolve(axis=Axis((34.635, 68.8, -42.5), (0, 1, 0)), revolution_arc=90, mode=Mode.SUBTRACT)
    with BuildSketch(Plane(origin=(42.135, -18.75, -50), x_dir=(-1, 0, 0), z_dir=(0, 1, 0)), Plane(origin=(42.135, -18.75, 50), x_dir=(0, 0, -1), z_dir=(0, 1, 0))) as fillet8_piece_5:
        with BuildLine():
            CenterArc((FILLET8_R, FILLET8_R), FILLET8_R, 180, 90)
            Line((0, FILLET8_R), (0, 0))
            Line((0, 0), (FILLET8_R, 0))
        make_face()
    extrude(amount=87.55, mode=Mode.SUBTRACT)
    with BuildSketch(Plane(origin=(-42.135, -18.75, 50), x_dir=(0, 0, -1), z_dir=(0, 1, 0)), Plane(origin=(-42.135, -18.75, -50), x_dir=(1, 0, 0), z_dir=(0, 1, 0))) as fillet8_piece_6:
        with BuildLine():
            CenterArc((FILLET8_R, -FILLET8_R), FILLET8_R, 90, 90)
            Line((0, -FILLET8_R), (0, 0))
            Line((0, 0), (FILLET8_R, 0))
        make_face()
    extrude(amount=87.55, mode=Mode.SUBTRACT)

    # AdvancedHole2 outline → AdvancedHole2 (cut)
    with BuildSketch(Plane(origin=(0, 0, 0), x_dir=(1, 0, 0), z_dir=(0, 1, 0))):
        with Locations((-22.135, -30)):
            Circle(ADVANCEDHOLE2_OUTLINE_R)
        with Locations((27.135, -30)):
            Circle(ADVANCEDHOLE2_OUTLINE_R)
        with Locations((27.135, 34.03)):
            Circle(ADVANCEDHOLE2_OUTLINE_R)
        with Locations((-22.135, 34.03)):
            Circle(ADVANCEDHOLE2_OUTLINE_R)
    extrude(amount=ADVANCEDHOLE2_DEPTH, mode=Mode.SUBTRACT)

    # Hole1 outline → Hole1 (cut)
    with BuildSketch(Plane.YZ.offset(HOLE1_START)):
        with Locations((53.8, 0)):
            Circle(HOLE1_OUTLINE_R)
    extrude(amount=HOLE1_DEPTH, mode=Mode.SUBTRACT)


solid = part.part
